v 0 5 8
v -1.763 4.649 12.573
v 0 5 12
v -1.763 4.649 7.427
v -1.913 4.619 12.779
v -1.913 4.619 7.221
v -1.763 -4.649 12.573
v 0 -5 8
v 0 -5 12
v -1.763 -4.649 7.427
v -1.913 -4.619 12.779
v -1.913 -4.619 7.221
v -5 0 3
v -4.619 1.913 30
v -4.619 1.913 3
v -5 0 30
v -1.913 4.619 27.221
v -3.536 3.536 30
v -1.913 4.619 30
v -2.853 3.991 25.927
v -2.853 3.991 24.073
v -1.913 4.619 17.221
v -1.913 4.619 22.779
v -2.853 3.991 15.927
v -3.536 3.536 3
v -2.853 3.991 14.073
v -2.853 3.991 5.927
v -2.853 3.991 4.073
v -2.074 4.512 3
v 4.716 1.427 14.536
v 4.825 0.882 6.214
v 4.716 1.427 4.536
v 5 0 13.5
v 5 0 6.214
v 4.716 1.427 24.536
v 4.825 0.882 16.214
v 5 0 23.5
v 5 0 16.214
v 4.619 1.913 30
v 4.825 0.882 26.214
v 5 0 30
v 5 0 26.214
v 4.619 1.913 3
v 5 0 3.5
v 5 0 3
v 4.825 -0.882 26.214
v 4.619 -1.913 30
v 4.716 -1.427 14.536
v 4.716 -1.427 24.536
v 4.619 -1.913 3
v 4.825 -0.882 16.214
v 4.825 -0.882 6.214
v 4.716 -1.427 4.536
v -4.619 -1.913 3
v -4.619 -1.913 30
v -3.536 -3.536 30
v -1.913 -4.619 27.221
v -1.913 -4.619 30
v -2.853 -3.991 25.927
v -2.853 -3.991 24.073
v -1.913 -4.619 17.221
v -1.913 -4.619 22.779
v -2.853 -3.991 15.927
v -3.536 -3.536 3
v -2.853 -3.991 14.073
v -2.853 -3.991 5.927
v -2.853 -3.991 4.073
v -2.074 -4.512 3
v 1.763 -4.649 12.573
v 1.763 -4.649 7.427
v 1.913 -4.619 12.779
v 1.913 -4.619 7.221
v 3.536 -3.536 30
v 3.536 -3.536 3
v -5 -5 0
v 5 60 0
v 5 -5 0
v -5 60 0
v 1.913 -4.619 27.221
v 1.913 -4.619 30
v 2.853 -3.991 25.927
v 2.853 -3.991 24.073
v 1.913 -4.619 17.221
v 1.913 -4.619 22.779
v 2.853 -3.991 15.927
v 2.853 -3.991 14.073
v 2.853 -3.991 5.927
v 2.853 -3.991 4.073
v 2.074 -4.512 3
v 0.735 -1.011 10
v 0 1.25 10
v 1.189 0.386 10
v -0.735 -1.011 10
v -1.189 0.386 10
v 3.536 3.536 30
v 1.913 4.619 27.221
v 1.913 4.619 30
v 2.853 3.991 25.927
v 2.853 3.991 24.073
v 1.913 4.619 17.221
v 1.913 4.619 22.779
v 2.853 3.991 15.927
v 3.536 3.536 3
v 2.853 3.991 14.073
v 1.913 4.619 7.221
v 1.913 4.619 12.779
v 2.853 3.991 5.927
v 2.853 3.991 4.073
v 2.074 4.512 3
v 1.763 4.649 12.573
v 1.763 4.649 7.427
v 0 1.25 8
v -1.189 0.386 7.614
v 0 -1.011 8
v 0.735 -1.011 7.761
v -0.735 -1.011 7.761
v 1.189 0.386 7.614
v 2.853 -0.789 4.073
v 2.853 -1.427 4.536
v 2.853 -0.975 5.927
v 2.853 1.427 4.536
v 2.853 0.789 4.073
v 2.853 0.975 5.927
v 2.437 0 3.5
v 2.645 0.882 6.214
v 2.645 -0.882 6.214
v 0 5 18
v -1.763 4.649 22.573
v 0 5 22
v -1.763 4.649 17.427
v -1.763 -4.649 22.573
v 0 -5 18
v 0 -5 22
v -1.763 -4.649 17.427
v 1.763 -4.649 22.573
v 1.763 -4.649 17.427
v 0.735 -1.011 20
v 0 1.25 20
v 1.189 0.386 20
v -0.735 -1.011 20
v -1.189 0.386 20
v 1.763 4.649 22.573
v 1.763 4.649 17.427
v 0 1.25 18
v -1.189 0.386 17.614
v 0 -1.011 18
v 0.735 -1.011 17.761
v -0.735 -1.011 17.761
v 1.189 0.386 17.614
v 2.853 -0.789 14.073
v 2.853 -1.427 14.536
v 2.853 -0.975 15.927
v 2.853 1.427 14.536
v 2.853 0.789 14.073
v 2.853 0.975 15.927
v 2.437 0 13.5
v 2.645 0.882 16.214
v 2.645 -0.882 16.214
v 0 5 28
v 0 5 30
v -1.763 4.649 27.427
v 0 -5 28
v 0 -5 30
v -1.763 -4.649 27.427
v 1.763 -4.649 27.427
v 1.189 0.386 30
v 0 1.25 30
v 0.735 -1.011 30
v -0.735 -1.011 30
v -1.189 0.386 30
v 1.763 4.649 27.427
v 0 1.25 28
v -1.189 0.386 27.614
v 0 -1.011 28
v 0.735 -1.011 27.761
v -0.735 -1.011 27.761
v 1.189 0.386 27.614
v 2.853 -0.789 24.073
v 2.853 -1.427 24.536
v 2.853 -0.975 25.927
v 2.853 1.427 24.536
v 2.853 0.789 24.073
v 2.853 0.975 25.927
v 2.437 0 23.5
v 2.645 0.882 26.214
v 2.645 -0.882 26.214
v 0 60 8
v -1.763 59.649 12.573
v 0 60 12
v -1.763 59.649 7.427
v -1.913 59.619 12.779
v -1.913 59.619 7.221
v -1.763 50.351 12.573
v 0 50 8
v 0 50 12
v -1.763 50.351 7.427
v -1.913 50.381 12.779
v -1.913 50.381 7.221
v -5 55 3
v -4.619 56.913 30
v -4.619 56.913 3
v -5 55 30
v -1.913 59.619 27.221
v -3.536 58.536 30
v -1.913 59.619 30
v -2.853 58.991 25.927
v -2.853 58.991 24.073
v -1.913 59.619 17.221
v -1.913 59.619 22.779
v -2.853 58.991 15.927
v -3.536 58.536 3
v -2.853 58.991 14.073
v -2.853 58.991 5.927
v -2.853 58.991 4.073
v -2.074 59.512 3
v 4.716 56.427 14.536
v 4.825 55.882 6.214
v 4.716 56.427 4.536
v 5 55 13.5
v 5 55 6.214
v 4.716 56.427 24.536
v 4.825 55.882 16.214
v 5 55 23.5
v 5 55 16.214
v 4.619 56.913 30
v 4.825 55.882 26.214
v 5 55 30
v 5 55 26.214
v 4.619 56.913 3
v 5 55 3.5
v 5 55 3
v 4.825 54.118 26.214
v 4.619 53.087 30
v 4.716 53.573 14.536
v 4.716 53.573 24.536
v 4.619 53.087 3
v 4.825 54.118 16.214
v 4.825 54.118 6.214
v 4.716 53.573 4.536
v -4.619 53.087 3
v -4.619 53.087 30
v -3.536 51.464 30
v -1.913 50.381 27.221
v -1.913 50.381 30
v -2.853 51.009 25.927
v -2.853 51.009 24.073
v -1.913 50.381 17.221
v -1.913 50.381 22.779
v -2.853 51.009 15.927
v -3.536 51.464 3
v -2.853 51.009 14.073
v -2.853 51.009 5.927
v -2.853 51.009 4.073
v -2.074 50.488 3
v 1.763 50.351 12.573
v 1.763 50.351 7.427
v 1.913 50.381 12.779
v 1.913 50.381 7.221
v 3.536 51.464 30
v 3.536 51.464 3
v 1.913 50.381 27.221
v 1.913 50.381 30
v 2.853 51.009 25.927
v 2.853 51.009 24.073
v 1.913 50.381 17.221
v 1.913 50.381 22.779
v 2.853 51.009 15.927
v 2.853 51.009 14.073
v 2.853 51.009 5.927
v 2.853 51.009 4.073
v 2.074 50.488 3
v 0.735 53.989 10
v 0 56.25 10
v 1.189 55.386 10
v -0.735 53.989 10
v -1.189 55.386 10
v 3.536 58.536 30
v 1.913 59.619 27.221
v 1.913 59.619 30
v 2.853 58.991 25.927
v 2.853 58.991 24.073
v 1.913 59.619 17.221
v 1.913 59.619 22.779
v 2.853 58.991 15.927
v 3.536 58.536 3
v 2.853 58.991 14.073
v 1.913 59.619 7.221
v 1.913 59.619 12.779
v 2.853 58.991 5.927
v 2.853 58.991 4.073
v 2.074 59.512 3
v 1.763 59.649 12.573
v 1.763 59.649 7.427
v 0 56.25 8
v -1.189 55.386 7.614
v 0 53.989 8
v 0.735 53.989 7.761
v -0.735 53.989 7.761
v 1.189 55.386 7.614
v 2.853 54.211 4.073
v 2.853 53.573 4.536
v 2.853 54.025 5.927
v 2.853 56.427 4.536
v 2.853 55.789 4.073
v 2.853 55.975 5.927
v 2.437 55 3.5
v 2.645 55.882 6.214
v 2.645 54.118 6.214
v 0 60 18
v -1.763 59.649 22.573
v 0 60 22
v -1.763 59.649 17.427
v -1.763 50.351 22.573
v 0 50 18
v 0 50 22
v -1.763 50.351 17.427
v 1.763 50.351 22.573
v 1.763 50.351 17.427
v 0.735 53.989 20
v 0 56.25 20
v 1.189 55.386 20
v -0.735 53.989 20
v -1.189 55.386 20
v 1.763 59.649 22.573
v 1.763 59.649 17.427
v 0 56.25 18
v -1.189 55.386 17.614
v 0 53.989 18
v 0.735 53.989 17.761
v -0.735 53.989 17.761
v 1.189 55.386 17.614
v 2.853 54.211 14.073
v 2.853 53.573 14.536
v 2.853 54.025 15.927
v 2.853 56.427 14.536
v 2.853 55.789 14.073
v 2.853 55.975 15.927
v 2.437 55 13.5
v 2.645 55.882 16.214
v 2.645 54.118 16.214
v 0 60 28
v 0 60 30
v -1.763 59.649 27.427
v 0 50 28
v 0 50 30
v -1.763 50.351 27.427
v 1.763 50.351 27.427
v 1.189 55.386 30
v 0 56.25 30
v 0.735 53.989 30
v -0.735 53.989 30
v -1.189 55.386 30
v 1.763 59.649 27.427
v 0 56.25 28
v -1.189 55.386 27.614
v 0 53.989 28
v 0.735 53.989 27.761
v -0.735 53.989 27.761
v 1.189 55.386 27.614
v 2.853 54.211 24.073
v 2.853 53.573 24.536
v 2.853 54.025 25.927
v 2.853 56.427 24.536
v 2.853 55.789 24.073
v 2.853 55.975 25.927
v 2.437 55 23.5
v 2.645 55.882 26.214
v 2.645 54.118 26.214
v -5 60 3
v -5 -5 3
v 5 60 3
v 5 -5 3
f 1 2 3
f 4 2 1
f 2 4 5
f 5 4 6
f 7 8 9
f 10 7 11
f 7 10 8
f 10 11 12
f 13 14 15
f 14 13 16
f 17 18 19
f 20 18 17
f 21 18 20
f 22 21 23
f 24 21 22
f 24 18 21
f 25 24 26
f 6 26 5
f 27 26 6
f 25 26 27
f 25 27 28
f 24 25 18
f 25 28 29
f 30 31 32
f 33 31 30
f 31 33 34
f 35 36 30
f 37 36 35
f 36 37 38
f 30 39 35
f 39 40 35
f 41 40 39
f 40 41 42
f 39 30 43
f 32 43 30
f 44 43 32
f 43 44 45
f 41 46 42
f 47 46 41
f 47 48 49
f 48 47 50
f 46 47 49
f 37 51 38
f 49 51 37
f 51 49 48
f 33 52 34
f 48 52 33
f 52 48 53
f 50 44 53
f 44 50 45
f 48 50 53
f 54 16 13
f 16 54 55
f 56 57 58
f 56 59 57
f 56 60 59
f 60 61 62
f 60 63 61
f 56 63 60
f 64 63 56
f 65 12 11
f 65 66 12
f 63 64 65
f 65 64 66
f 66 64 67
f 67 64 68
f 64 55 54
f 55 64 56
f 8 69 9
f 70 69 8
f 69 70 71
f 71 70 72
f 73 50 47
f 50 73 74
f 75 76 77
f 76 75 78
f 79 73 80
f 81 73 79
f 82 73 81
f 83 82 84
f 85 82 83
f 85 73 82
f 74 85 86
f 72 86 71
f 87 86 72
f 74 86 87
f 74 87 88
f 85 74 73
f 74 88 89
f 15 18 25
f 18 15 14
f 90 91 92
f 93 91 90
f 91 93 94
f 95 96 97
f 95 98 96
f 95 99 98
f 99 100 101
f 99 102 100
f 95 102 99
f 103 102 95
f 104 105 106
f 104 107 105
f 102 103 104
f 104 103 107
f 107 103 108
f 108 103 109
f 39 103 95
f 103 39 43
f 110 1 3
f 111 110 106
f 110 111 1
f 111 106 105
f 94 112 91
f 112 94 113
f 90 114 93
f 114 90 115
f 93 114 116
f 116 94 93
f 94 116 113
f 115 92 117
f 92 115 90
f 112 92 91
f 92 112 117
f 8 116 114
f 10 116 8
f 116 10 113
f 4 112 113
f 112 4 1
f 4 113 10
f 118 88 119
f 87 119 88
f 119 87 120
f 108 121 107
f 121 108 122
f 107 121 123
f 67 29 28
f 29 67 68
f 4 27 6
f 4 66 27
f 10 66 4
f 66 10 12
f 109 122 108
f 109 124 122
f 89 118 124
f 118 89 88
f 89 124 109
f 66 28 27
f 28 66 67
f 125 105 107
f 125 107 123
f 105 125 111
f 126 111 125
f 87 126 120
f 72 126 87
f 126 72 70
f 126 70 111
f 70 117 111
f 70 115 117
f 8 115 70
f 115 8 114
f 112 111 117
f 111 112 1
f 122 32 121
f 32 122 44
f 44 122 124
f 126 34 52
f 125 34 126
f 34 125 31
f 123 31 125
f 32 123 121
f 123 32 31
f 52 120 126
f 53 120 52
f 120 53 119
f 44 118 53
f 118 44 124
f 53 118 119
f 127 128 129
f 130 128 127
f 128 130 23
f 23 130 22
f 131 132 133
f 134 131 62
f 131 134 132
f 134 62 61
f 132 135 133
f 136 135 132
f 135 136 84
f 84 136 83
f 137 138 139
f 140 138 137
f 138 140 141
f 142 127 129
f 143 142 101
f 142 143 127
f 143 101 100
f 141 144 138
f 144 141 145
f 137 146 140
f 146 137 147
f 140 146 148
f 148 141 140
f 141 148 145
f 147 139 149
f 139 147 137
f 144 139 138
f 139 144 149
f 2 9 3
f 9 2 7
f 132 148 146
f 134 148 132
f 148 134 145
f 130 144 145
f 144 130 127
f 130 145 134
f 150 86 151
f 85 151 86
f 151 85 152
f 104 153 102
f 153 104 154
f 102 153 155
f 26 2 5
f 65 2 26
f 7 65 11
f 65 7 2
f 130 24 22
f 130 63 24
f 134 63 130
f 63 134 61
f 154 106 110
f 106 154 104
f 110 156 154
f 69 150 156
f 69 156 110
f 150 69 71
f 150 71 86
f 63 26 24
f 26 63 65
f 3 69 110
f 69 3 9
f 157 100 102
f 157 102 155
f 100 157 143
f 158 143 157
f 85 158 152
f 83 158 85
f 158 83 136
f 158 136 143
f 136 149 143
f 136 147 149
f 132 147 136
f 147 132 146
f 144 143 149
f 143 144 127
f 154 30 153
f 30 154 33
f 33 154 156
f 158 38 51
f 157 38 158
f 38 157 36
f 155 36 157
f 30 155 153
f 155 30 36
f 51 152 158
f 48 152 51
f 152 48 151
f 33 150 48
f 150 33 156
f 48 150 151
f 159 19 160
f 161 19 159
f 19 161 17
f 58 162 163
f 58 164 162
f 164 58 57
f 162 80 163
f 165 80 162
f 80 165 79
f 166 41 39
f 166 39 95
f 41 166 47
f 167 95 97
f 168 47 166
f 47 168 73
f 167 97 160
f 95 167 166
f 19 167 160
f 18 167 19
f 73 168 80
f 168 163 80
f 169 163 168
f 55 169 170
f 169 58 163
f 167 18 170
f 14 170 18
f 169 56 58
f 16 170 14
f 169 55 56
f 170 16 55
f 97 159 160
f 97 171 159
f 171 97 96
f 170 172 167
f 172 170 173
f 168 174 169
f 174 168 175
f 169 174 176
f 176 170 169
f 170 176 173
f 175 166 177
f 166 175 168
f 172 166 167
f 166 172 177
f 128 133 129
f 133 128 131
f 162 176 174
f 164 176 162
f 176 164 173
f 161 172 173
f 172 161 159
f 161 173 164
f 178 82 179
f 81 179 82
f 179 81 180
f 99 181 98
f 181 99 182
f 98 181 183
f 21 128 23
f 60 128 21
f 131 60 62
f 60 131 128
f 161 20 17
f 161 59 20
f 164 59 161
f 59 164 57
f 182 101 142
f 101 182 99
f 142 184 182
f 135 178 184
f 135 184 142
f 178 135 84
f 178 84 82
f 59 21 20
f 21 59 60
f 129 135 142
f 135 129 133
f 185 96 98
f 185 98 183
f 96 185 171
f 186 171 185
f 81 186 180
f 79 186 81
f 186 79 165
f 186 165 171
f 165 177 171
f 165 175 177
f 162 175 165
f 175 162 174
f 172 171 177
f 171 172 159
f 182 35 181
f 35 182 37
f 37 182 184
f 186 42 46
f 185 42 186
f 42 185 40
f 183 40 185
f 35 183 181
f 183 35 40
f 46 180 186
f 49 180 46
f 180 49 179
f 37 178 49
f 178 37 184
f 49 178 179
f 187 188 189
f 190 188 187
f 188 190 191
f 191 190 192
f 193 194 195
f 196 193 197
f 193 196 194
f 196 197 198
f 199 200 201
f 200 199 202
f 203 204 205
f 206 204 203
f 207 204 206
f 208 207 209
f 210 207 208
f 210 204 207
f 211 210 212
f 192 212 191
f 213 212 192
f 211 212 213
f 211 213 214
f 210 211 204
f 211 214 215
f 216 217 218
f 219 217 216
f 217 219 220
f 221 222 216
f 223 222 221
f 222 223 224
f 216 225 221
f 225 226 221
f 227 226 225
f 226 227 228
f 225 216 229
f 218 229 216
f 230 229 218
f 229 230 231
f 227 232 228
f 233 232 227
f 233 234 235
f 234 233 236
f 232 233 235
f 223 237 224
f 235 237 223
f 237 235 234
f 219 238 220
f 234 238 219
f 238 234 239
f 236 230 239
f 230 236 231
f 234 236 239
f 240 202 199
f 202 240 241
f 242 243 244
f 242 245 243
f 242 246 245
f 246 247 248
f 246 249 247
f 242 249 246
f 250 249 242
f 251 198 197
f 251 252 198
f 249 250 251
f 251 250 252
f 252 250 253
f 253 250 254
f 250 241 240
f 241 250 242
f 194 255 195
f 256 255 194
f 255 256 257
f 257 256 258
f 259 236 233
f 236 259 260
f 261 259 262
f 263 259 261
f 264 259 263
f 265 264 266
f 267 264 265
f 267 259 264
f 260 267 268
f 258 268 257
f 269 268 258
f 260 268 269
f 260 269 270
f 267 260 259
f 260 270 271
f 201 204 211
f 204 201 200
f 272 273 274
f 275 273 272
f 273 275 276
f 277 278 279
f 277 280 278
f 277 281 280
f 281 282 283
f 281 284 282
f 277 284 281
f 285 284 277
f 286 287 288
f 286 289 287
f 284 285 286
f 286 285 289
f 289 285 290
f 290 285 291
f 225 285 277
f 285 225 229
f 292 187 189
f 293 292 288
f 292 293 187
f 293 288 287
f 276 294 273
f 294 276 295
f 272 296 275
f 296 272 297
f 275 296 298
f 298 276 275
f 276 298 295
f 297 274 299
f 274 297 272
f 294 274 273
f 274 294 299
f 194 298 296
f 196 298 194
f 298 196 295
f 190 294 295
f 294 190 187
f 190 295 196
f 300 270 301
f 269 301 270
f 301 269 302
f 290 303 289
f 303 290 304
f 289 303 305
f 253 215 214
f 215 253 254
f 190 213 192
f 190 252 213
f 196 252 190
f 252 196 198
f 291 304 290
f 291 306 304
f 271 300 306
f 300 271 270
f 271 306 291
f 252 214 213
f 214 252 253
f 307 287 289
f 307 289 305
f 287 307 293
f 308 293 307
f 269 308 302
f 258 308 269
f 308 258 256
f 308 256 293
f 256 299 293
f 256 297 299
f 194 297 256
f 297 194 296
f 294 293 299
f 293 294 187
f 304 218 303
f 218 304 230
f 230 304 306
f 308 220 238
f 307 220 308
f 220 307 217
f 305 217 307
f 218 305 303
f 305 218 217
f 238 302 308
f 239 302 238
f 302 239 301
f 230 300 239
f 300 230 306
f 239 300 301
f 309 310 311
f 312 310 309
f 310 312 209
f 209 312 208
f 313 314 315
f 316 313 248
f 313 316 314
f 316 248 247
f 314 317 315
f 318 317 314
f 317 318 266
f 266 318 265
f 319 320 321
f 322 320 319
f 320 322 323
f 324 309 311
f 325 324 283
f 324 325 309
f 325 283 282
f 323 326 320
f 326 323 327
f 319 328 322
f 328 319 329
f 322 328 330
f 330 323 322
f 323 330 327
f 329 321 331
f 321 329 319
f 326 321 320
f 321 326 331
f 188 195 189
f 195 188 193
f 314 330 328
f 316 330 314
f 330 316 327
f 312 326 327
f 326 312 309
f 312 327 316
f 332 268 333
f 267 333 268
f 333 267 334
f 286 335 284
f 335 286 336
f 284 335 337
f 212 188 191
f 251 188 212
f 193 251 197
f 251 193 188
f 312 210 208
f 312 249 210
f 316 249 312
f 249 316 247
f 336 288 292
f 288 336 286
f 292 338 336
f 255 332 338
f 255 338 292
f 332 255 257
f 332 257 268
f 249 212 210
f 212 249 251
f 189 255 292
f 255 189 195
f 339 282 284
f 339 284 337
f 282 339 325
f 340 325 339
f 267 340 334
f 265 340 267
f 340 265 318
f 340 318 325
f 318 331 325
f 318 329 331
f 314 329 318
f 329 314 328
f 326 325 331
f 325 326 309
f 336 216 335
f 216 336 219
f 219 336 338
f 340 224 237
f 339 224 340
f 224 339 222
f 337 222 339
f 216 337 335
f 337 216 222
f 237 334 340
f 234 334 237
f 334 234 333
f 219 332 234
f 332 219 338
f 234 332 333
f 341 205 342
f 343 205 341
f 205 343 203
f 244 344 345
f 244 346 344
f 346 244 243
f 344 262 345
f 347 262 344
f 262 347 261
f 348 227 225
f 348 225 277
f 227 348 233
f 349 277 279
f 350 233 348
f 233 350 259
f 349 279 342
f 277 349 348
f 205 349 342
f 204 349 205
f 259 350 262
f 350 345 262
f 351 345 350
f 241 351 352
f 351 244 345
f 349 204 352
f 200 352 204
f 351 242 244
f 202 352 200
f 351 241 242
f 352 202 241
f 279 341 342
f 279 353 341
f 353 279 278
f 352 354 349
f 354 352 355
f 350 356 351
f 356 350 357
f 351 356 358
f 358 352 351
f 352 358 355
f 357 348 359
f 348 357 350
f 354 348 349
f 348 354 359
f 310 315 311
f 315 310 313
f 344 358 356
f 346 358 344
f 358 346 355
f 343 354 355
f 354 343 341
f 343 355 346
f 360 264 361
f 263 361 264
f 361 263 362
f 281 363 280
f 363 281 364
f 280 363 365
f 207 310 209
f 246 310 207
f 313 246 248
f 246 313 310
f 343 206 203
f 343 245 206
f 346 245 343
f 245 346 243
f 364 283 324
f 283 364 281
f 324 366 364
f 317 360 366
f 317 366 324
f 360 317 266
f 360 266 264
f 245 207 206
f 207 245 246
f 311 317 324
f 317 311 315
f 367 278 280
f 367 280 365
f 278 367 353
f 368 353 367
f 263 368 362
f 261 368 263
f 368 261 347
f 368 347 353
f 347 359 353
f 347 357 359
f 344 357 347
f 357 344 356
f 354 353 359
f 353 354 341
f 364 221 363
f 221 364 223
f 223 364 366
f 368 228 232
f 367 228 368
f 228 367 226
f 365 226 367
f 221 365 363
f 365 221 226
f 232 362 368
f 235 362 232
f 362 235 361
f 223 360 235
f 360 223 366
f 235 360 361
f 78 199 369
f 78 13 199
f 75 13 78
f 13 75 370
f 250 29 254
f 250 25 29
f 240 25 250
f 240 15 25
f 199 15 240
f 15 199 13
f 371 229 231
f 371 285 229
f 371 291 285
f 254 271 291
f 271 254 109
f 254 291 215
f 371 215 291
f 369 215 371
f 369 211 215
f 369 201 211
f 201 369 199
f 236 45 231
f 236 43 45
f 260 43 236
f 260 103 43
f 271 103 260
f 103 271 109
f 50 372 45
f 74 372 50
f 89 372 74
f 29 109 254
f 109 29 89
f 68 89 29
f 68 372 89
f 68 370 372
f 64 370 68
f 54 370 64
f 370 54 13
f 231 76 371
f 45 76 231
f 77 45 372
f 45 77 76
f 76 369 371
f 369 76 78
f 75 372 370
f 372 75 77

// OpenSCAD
union() {
	difference() {
		rotate(a = [0, 0, 90]) {
			difference() {
				cylinder(d = 10, h = 10);
				translate(v = [0, 0, 7]) {
					cylinder(d = 2.5000000000, h = 5);
				}
				translate(v = [0, 0, 5.0000000000]) {
					rotate(a = [0, 90, 0]) {
						cylinder(center = true, d = 6, h = 10);
					}
				}
			}
		}
		translate(v = [0, 0, 5.0000000000]) {
			rotate(a = [0, 90, 0]) {
				cylinder(d = 3, h = 10);
			}
		}
	}
	translate(v = [0, 0, 10]) {
		difference() {
			rotate(a = [0, 0, 90]) {
				difference() {
					cylinder(d = 10, h = 10);
					translate(v = [0, 0, 7]) {
						cylinder(d = 2.5000000000, h = 5);
					}
					translate(v = [0, 0, 5.0000000000]) {
						rotate(a = [0, 90, 0]) {
							cylinder(center = true, d = 6, h = 10);
						}
					}
				}
			}
			translate(v = [0, 0, 5.0000000000]) {
				rotate(a = [0, 90, 0]) {
					cylinder(d = 3, h = 10);
				}
			}
		}
	}
	translate(v = [0, 0, 20]) {
		difference() {
			rotate(a = [0, 0, 90]) {
				difference() {
					cylinder(d = 10, h = 10);
					translate(v = [0, 0, 7]) {
						cylinder(d = 2.5000000000, h = 5);
					}
					translate(v = [0, 0, 5.0000000000]) {
						rotate(a = [0, 90, 0]) {
							cylinder(center = true, d = 6, h = 10);
						}
					}
				}
			}
			translate(v = [0, 0, 5.0000000000]) {
				rotate(a = [0, 90, 0]) {
					cylinder(d = 3, h = 10);
				}
			}
		}
	}
	translate(v = [0, 55, 0]) {
		union() {
			difference() {
				rotate(a = [0, 0, 90]) {
					difference() {
						cylinder(d = 10, h = 10);
						translate(v = [0, 0, 7]) {
							cylinder(d = 2.5000000000, h = 5);
						}
						translate(v = [0, 0, 5.0000000000]) {
							rotate(a = [0, 90, 0]) {
								cylinder(center = true, d = 6, h = 10);
							}
						}
					}
				}
				translate(v = [0, 0, 5.0000000000]) {
					rotate(a = [0, 90, 0]) {
						cylinder(d = 3, h = 10);
					}
				}
			}
			translate(v = [0, 0, 10]) {
				difference() {
					rotate(a = [0, 0, 90]) {
						difference() {
							cylinder(d = 10, h = 10);
							translate(v = [0, 0, 7]) {
								cylinder(d = 2.5000000000, h = 5);
							}
							translate(v = [0, 0, 5.0000000000]) {
								rotate(a = [0, 90, 0]) {
									cylinder(center = true, d = 6, h = 10);
								}
							}
						}
					}
					translate(v = [0, 0, 5.0000000000]) {
						rotate(a = [0, 90, 0]) {
							cylinder(d = 3, h = 10);
						}
					}
				}
			}
			translate(v = [0, 0, 20]) {
				difference() {
					rotate(a = [0, 0, 90]) {
						difference() {
							cylinder(d = 10, h = 10);
							translate(v = [0, 0, 7]) {
								cylinder(d = 2.5000000000, h = 5);
							}
							translate(v = [0, 0, 5.0000000000]) {
								rotate(a = [0, 90, 0]) {
									cylinder(center = true, d = 6, h = 10);
								}
							}
						}
					}
					translate(v = [0, 0, 5.0000000000]) {
						rotate(a = [0, 90, 0]) {
							cylinder(d = 3, h = 10);
						}
					}
				}
			}
		}
	}
	translate(v = [0, -5.0000000000, 0]) {
		translate(v = [-5.0000000000, 0, 0]) {
			cube(size = [10, 65, 3]);
		}
	}
}
